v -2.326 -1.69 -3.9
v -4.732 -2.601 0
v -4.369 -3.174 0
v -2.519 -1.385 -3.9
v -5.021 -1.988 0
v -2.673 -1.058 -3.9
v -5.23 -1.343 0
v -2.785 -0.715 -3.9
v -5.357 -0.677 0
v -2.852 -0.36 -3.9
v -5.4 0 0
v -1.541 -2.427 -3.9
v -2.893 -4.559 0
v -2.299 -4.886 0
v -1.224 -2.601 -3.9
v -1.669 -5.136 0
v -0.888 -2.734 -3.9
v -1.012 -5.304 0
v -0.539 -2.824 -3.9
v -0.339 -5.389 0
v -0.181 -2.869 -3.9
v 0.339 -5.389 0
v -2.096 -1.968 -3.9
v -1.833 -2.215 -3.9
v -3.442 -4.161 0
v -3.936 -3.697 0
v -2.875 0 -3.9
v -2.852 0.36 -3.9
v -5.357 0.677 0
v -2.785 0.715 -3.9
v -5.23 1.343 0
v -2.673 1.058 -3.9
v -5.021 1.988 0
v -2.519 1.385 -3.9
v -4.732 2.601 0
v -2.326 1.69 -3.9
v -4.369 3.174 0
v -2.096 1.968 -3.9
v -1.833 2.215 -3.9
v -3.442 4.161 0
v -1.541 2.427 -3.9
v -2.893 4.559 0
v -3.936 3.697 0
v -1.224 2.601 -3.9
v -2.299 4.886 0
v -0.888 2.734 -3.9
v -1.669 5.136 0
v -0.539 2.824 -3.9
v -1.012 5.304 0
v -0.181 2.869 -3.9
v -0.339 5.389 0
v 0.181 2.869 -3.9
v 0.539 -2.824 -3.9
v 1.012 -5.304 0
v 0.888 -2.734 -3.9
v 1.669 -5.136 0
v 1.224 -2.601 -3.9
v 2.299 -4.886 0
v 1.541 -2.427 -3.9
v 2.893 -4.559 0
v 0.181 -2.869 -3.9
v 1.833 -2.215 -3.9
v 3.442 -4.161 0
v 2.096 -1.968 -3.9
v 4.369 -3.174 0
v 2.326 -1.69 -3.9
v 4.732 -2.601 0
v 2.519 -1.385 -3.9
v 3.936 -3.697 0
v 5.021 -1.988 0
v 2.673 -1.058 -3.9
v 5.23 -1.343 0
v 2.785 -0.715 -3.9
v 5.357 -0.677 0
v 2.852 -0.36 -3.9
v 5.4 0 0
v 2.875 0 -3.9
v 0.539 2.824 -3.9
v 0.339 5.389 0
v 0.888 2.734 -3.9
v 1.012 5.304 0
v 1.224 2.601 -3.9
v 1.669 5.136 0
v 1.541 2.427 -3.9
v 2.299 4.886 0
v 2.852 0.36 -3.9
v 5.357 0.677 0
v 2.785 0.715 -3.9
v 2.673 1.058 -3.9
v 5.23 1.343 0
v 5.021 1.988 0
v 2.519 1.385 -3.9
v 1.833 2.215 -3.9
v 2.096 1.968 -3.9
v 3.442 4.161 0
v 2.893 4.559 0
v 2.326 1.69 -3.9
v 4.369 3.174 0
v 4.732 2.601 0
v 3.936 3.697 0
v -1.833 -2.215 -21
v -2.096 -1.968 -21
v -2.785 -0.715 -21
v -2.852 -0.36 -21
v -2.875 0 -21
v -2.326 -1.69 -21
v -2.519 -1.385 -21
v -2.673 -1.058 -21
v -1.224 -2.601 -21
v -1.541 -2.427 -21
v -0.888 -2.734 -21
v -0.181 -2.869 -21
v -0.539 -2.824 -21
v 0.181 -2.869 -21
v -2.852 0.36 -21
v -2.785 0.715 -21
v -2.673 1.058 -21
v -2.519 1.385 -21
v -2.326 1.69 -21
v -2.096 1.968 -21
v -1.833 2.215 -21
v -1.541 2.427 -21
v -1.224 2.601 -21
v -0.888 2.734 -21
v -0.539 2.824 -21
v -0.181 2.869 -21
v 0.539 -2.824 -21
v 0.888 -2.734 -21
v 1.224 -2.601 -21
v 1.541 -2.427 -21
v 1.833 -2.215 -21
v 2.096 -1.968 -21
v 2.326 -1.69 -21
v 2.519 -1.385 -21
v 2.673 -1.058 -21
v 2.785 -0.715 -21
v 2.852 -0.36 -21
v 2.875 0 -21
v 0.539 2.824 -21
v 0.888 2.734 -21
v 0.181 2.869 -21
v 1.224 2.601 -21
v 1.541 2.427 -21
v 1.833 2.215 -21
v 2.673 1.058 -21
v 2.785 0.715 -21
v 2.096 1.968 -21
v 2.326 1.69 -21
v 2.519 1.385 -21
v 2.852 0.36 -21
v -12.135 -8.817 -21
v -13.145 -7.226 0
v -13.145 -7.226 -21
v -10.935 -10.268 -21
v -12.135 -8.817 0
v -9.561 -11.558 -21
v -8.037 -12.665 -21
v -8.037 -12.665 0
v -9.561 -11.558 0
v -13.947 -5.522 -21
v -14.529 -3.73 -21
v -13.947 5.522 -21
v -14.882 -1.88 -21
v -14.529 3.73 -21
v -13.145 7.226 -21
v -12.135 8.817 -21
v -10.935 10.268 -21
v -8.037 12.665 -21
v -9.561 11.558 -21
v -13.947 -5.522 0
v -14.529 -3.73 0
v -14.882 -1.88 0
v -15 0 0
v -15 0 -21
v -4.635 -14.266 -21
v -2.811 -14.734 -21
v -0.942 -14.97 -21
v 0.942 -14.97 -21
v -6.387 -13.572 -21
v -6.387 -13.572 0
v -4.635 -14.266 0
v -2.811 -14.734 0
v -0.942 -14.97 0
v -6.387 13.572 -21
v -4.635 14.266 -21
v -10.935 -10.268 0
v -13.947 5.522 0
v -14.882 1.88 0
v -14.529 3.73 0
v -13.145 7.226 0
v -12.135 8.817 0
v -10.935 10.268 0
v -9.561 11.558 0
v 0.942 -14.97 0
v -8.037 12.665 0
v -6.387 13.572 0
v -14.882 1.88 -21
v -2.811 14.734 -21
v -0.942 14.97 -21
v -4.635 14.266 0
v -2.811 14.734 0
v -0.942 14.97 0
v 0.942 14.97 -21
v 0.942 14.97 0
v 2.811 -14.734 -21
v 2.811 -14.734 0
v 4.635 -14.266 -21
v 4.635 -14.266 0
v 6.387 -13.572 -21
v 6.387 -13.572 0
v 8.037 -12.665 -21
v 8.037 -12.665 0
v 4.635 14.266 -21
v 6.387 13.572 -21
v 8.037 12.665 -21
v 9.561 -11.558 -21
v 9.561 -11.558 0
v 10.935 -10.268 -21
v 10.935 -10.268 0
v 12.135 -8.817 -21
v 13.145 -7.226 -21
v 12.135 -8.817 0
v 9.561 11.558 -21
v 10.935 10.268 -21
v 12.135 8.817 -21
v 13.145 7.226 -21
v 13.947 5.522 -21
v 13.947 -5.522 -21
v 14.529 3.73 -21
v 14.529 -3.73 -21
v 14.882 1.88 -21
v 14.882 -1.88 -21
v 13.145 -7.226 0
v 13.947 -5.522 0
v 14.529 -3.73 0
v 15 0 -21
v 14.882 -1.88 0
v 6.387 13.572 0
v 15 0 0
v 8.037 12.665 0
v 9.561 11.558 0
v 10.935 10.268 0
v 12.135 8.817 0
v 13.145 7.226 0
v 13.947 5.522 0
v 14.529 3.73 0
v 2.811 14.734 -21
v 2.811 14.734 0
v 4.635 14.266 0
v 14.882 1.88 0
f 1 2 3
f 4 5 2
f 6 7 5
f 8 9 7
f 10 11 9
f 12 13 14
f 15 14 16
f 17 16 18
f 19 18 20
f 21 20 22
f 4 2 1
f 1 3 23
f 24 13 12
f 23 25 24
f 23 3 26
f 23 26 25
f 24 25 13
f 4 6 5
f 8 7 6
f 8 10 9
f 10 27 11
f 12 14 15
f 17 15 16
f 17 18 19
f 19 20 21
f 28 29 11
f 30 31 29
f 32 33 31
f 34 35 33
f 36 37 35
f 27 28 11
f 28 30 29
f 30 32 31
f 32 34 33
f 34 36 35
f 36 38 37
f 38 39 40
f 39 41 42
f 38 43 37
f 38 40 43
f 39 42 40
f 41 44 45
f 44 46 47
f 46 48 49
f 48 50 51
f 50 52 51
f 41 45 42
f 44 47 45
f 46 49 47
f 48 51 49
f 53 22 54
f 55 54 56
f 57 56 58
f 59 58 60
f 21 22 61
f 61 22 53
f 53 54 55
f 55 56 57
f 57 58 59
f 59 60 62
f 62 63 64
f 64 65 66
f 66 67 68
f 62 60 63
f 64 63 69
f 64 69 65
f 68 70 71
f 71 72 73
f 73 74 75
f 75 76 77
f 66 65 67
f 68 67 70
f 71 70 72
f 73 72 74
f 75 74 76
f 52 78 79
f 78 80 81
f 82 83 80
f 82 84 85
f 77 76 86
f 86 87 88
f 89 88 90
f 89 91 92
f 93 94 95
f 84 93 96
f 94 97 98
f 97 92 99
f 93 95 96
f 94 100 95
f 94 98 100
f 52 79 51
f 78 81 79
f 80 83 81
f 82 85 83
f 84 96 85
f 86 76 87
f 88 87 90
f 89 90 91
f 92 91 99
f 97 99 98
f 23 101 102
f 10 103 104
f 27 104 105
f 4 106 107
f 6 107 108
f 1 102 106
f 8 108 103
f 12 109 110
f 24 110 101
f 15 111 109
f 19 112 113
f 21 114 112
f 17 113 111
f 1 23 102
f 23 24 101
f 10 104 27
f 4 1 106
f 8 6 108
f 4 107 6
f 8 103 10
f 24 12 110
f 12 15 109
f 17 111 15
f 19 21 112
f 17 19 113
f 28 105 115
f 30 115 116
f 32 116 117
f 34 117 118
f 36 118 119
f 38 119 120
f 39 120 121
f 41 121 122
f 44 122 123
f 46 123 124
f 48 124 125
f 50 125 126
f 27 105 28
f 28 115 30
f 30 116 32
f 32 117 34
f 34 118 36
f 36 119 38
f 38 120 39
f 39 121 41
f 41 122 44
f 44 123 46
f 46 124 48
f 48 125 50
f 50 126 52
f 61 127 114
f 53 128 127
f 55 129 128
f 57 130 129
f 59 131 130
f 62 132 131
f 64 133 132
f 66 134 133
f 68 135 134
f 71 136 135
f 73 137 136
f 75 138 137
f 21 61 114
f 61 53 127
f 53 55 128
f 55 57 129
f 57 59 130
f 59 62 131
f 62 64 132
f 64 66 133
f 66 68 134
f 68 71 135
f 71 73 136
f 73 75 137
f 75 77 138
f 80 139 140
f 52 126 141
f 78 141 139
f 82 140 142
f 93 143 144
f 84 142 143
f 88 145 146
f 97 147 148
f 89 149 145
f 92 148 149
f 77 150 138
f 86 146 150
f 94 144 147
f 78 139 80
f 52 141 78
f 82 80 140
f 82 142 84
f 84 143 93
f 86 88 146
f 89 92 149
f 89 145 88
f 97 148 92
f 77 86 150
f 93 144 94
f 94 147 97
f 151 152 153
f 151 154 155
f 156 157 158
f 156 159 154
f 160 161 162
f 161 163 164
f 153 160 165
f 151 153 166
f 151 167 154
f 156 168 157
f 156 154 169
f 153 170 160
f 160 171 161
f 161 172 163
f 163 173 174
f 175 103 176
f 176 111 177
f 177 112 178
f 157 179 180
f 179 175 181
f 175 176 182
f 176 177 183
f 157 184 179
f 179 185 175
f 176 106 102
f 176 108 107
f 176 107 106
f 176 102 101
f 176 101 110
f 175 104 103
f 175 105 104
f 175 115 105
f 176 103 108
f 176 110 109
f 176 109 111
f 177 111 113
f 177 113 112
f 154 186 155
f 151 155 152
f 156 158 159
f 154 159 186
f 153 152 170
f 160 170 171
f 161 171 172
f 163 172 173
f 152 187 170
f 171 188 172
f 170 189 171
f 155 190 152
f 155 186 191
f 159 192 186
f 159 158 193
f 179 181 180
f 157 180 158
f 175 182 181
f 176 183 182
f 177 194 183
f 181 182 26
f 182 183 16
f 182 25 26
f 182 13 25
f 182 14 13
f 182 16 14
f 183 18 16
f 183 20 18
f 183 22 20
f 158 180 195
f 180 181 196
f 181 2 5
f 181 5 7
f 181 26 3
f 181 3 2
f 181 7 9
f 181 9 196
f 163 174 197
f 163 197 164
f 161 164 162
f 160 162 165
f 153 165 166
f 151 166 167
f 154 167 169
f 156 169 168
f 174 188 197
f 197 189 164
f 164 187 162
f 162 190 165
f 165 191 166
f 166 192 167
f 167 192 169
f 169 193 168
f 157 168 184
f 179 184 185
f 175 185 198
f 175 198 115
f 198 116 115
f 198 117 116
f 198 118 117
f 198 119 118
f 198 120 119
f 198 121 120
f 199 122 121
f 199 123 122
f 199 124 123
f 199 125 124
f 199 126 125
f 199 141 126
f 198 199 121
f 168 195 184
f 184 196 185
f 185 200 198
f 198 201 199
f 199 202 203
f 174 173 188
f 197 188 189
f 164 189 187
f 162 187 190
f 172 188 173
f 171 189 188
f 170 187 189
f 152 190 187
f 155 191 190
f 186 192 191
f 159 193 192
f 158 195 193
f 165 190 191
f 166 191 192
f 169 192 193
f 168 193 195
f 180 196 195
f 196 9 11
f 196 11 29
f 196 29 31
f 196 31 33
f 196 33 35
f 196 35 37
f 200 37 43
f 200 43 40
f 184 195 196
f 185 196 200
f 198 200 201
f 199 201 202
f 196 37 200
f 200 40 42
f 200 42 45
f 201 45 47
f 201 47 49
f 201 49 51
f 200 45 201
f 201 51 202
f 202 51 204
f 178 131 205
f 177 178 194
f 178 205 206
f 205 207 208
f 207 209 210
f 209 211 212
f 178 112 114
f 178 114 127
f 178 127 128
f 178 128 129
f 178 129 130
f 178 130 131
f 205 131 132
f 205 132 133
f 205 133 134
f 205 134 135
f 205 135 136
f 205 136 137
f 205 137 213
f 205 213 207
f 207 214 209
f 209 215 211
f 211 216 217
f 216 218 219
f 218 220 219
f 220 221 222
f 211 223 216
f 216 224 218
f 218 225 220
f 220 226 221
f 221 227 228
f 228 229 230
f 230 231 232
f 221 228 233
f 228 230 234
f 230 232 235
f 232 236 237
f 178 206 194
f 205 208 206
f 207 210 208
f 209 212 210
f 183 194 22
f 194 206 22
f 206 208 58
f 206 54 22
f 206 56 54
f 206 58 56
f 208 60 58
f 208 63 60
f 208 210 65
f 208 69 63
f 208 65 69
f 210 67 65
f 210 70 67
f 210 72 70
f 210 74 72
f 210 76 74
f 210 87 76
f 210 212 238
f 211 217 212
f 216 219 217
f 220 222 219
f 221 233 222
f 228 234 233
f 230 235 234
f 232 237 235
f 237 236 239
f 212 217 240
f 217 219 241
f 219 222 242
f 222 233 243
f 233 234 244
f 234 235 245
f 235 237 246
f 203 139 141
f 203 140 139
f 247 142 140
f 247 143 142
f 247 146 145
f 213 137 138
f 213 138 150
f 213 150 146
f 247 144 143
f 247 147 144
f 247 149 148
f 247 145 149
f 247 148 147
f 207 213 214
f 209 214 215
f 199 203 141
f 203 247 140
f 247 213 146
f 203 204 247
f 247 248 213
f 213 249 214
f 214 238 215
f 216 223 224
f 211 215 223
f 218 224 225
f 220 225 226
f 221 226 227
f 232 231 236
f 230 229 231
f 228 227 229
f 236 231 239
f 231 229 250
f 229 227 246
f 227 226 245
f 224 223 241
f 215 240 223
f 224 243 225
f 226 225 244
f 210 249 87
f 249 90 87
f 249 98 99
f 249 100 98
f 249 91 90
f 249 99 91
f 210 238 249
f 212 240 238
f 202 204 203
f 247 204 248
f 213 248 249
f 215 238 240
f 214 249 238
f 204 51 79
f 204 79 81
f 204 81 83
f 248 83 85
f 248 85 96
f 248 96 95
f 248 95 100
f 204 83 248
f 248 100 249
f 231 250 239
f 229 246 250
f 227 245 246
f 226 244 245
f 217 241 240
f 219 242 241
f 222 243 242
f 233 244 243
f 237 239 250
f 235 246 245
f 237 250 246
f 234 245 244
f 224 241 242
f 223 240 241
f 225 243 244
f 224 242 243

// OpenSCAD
$fn = 50;


difference() {
	union() {
		translate(v = [0, 0, -21.0000000000]) {
			cylinder(h = 21, r = 15.0000000000);
		}
	}
	union() {
		translate(v = [0, 0, 0]) {
			rotate(a = [0, 0, 0]) {
				difference() {
					union() {
						translate(v = [0, 0, -24.0000000000]) {
							cylinder(h = 24, r = 2.6000000000);
						}
						translate(v = [0, 0, -3.9000000000]) {
							cylinder(h = 3.9000000000, r1 = 2.8750000000, r2 = 5.4000000000);
						}
						translate(v = [0, 0, -24.0000000000]) {
							cylinder(h = 24, r = 2.8750000000);
						}
						translate(v = [0, 0, -24.0000000000]) {
							cylinder(h = 24, r = 2.6000000000);
						}
					}
					union();
				}
			}
		}
	}
}
